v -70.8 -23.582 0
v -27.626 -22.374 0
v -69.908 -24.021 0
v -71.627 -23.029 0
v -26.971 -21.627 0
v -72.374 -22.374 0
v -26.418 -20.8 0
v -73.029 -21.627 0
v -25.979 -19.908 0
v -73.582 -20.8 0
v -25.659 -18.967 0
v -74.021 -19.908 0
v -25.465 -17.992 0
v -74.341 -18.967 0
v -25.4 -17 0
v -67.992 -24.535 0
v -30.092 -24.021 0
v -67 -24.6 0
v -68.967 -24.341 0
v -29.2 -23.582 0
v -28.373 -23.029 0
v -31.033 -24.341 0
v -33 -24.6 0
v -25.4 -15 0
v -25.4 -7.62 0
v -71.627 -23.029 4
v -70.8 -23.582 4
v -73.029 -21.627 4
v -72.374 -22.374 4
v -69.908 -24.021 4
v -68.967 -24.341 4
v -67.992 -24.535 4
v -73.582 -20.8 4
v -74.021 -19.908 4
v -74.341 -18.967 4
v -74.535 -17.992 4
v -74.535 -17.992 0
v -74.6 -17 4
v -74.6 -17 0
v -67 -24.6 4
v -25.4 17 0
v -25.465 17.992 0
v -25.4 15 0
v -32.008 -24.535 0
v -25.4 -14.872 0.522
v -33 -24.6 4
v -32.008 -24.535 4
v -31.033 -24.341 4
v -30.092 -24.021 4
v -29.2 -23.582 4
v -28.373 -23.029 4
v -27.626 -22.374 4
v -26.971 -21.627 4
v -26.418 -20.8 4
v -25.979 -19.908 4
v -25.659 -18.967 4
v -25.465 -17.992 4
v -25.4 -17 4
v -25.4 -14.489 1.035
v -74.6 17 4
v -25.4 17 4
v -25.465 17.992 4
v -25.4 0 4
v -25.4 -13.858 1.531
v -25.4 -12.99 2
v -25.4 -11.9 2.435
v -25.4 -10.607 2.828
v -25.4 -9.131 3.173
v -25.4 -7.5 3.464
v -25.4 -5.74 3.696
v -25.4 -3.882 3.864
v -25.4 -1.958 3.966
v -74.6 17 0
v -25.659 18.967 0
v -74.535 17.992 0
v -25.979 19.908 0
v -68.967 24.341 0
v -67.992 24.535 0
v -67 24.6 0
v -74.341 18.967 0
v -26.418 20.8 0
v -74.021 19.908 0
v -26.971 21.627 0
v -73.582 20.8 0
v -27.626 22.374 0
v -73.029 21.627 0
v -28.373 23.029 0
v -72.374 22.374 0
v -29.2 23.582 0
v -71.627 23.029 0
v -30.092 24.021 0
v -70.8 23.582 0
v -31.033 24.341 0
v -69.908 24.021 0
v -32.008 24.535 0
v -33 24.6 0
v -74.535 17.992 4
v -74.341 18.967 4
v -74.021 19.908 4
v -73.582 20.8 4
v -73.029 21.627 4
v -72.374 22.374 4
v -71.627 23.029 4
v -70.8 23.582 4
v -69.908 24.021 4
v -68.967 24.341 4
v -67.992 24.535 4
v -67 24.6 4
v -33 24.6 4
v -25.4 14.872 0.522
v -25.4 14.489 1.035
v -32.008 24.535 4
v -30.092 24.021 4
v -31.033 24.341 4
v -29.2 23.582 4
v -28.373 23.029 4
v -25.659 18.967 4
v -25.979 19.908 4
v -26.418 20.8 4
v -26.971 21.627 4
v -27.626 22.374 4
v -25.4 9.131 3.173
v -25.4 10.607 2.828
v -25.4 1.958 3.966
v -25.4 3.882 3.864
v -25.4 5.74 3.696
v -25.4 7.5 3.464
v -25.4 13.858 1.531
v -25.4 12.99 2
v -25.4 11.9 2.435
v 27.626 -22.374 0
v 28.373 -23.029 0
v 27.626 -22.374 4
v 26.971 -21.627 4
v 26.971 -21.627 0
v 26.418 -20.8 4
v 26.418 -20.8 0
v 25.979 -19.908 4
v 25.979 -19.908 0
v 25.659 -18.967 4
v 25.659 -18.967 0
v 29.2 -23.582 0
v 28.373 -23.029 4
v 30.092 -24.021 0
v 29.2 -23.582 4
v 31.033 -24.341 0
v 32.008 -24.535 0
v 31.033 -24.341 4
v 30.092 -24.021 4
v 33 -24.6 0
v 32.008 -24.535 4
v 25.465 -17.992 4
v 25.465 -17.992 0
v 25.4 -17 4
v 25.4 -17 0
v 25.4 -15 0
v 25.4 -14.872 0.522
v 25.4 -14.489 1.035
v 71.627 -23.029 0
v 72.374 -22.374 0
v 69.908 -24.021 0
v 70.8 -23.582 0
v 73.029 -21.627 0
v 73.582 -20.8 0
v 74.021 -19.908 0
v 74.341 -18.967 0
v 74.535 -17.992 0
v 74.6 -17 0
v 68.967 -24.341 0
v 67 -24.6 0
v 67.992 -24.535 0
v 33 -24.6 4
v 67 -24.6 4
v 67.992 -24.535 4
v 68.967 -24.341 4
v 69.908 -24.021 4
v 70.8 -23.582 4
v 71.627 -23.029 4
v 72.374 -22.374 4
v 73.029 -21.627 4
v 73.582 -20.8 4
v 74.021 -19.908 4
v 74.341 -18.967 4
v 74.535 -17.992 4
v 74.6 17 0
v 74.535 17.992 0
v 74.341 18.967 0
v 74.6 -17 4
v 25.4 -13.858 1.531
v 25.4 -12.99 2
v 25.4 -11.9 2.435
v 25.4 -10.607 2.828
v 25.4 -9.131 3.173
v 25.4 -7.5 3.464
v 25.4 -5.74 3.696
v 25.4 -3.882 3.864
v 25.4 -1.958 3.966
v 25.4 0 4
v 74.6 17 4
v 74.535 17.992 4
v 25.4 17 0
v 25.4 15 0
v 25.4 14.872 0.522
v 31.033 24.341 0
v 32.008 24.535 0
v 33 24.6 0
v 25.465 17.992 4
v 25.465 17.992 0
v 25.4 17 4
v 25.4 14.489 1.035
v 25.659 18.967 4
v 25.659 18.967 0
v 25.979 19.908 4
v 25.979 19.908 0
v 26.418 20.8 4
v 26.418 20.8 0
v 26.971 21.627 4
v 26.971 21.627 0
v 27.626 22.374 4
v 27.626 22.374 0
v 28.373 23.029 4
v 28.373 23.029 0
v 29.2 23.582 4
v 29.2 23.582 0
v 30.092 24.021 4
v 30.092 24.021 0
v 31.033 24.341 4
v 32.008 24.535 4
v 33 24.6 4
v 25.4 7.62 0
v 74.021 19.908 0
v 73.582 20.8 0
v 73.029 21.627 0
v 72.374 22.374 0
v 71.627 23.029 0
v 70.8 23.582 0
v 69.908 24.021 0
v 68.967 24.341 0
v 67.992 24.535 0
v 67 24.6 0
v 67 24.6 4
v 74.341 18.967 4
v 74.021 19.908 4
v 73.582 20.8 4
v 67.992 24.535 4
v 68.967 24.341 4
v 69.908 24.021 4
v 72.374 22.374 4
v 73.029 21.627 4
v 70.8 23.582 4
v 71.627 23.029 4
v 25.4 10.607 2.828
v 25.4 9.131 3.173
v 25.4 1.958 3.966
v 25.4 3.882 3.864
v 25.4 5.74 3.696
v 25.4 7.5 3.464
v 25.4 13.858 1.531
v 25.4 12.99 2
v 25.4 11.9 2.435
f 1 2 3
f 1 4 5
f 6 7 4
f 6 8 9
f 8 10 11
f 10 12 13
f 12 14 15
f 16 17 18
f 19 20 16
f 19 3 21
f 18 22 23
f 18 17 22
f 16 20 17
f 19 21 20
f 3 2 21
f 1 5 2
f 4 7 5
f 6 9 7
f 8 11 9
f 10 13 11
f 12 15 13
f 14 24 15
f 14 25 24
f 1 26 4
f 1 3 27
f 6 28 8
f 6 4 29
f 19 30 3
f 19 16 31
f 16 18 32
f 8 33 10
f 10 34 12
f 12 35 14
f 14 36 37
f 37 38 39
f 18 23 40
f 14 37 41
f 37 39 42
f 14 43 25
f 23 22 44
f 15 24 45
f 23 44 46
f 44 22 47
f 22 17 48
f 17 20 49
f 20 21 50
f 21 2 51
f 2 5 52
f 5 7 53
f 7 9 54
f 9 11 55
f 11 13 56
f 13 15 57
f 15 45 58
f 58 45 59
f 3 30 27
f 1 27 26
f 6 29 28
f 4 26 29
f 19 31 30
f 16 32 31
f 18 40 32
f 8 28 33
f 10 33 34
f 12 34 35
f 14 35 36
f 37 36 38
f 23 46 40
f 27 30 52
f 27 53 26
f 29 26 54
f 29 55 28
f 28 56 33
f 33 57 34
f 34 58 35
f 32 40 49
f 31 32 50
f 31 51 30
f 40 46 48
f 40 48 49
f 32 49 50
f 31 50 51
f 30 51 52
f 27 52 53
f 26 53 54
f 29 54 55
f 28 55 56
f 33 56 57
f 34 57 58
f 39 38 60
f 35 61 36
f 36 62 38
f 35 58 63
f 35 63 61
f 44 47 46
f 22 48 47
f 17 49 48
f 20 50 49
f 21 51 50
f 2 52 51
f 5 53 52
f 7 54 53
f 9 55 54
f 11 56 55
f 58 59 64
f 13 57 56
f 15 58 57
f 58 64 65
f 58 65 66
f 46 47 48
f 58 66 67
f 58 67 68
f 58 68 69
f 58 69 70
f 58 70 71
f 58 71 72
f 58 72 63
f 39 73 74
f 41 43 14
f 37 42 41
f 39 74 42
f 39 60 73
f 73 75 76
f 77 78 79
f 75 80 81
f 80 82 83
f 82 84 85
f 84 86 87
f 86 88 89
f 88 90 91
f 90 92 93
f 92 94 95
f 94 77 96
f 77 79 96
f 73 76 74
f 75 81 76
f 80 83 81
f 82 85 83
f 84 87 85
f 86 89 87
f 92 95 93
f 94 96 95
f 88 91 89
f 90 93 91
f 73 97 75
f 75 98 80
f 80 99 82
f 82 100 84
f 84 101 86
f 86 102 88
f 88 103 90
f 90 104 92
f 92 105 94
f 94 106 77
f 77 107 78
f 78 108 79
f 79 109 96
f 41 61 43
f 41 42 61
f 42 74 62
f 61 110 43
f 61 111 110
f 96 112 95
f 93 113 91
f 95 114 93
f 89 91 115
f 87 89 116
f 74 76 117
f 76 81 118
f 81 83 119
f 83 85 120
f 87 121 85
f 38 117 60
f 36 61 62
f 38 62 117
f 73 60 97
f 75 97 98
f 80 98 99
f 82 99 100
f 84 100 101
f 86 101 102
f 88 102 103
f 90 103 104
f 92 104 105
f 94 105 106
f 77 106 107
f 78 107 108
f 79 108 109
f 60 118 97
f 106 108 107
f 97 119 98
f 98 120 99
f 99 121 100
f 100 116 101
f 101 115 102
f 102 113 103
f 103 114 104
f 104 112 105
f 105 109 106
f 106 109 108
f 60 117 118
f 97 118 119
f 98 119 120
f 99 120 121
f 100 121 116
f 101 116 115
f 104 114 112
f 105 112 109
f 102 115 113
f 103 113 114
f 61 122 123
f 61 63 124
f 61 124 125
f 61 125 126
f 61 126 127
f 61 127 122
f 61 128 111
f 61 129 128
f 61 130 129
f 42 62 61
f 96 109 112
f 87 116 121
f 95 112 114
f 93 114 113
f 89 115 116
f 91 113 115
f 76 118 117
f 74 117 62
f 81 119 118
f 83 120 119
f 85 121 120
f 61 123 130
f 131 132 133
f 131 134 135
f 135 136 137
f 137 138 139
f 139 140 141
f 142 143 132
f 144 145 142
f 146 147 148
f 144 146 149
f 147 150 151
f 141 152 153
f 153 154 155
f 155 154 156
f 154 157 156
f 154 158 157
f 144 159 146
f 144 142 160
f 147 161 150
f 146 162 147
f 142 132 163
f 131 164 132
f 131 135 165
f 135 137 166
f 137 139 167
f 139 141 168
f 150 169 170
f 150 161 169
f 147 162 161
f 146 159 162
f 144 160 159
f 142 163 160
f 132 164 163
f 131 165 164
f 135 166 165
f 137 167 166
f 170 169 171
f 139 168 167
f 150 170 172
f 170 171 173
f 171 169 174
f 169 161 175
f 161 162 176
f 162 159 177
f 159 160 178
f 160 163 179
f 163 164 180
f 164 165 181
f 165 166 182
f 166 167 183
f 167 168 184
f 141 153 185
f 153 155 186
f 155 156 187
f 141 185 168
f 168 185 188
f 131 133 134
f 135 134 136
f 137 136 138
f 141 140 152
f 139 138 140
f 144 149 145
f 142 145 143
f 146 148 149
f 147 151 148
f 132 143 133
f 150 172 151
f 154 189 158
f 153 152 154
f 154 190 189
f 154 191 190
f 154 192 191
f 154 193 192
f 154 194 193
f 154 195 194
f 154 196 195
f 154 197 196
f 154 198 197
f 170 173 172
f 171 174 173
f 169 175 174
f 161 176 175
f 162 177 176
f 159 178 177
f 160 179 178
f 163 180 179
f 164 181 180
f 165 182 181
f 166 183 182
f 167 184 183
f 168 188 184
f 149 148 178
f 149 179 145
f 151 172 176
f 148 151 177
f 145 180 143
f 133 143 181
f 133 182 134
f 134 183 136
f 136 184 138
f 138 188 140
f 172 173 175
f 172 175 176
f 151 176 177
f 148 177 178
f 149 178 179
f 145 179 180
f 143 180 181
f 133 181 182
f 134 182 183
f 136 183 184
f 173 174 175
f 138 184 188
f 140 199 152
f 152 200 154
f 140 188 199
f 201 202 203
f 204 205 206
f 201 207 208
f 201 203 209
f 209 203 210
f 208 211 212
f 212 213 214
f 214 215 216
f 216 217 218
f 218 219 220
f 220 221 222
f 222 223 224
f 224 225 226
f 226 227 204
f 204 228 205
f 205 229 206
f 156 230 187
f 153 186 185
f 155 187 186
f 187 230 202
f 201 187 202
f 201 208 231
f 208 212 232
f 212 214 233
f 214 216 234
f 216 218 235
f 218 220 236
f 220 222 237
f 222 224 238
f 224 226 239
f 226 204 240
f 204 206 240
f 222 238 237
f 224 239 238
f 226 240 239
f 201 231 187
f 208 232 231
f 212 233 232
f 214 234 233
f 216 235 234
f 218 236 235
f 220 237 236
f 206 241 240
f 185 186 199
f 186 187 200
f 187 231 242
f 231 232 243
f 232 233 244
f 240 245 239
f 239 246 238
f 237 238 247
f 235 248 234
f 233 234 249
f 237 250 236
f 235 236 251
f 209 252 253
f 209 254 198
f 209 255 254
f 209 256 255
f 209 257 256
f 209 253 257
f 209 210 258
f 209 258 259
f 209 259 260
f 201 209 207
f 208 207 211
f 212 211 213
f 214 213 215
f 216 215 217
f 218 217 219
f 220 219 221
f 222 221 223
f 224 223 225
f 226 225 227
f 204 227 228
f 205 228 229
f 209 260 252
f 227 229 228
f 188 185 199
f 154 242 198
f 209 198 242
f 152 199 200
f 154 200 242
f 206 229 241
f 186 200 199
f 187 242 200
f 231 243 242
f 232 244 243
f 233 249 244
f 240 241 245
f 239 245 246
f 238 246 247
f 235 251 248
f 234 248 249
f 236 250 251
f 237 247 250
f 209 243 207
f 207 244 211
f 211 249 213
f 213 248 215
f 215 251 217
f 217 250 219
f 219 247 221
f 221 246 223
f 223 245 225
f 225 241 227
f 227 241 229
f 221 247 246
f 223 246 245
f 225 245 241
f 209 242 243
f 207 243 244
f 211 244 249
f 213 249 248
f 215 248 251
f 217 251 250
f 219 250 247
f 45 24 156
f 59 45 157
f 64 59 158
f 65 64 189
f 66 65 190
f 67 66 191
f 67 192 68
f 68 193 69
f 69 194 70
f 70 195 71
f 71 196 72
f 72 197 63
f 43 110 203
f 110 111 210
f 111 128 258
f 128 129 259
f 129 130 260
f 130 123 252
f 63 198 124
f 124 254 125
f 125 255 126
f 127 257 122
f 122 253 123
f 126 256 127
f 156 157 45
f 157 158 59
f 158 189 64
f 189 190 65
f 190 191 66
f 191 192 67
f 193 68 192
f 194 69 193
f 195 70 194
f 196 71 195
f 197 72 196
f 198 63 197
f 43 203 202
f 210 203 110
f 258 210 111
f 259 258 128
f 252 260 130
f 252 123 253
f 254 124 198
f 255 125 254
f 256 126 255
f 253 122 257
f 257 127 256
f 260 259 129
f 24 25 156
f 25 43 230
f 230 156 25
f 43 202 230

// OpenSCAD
// Alignment plate for two side-by-side wooden key trays.
// A thin plastic plate with two tongues, each nesting in the shallow
// decorative recess on a box's underside, joined by a bridge across the
// seam — so the two boxes stay aligned and can't drift apart.
//
// Axes: X runs across the two boxes (the bridge direction),
//       Y runs along the seam between them.

// Measurements — TO VERIFY on the actual boxes
recess_x = 50;         // recess size across the boxes (X)
recess_y = 50;         // recess size along the seam (Y)
recess_depth = 5;      // how far the recess sinks up into the box bottom
recess_corner_r = 8;   // rounded-corner radius of the recess
recess_spacing = 100;  // centre-to-centre distance of the two recesses
                       // (= box width, when the boxes touch along long edges)

// Fit
clearance = 0.4;       // per-side gap so a tongue drops into its recess easily

// Plate
tongue_thickness = 4;  // <= recess_depth so the boxes don't rock (aim just under 5)
bridge_thickness = 4;  // if the boxes touch, ANY thickness here lifts them along
                       // the bridge path — keep it small, or set = tongue_thickness
                       // only if there is a real gap for the bridge to sit in
bridge_width = 30;     // width of the connecting bridge, along the seam (Y)

// Derived
tongue_x = recess_x - 2 * clearance;
tongue_y = recess_y - 2 * clearance;
tongue_r = max(0.5, recess_corner_r - clearance);

$fn = 48;

// A rounded rectangle of size [x, y], corner radius r, extruded to height h.
module rounded_slab(x, y, r, h) {
  linear_extrude(height = h)
    offset(r = r)
      square([x - 2 * r, y - 2 * r], center = true);
}

module tongue() {
  rounded_slab(tongue_x, tongue_y, tongue_r, tongue_thickness);
}

module bridge() {
  // Spans between the two tongue centres; overlaps into each tongue.
  // Cross-section (Y-Z) is a half-ellipse: flat bottom, arched top like a
  // bridge, peaking at bridge_thickness in the middle.
  r = bridge_width / 2;

  scale([1, 1, bridge_thickness / r])
    intersection() {
      rotate([0, 90, 0])
        cylinder(h = recess_spacing, r = r, center = true);

      // Keep only the top half (z >= 0) so the bottom stays flat.
      translate([0, 0, r])
        cube([recess_spacing + 1, bridge_width, 2 * r], center = true);
    }
}

module plate() {
  union() {
    for (sx = [-1, 1])
      translate([sx * recess_spacing / 2, 0, 0])
        tongue();

    bridge();
  }
}

// Render selector: "all" for the full plate, "bridge" to test just the bridge.
part = "all";

if (part == "bridge") bridge();
else plate();
